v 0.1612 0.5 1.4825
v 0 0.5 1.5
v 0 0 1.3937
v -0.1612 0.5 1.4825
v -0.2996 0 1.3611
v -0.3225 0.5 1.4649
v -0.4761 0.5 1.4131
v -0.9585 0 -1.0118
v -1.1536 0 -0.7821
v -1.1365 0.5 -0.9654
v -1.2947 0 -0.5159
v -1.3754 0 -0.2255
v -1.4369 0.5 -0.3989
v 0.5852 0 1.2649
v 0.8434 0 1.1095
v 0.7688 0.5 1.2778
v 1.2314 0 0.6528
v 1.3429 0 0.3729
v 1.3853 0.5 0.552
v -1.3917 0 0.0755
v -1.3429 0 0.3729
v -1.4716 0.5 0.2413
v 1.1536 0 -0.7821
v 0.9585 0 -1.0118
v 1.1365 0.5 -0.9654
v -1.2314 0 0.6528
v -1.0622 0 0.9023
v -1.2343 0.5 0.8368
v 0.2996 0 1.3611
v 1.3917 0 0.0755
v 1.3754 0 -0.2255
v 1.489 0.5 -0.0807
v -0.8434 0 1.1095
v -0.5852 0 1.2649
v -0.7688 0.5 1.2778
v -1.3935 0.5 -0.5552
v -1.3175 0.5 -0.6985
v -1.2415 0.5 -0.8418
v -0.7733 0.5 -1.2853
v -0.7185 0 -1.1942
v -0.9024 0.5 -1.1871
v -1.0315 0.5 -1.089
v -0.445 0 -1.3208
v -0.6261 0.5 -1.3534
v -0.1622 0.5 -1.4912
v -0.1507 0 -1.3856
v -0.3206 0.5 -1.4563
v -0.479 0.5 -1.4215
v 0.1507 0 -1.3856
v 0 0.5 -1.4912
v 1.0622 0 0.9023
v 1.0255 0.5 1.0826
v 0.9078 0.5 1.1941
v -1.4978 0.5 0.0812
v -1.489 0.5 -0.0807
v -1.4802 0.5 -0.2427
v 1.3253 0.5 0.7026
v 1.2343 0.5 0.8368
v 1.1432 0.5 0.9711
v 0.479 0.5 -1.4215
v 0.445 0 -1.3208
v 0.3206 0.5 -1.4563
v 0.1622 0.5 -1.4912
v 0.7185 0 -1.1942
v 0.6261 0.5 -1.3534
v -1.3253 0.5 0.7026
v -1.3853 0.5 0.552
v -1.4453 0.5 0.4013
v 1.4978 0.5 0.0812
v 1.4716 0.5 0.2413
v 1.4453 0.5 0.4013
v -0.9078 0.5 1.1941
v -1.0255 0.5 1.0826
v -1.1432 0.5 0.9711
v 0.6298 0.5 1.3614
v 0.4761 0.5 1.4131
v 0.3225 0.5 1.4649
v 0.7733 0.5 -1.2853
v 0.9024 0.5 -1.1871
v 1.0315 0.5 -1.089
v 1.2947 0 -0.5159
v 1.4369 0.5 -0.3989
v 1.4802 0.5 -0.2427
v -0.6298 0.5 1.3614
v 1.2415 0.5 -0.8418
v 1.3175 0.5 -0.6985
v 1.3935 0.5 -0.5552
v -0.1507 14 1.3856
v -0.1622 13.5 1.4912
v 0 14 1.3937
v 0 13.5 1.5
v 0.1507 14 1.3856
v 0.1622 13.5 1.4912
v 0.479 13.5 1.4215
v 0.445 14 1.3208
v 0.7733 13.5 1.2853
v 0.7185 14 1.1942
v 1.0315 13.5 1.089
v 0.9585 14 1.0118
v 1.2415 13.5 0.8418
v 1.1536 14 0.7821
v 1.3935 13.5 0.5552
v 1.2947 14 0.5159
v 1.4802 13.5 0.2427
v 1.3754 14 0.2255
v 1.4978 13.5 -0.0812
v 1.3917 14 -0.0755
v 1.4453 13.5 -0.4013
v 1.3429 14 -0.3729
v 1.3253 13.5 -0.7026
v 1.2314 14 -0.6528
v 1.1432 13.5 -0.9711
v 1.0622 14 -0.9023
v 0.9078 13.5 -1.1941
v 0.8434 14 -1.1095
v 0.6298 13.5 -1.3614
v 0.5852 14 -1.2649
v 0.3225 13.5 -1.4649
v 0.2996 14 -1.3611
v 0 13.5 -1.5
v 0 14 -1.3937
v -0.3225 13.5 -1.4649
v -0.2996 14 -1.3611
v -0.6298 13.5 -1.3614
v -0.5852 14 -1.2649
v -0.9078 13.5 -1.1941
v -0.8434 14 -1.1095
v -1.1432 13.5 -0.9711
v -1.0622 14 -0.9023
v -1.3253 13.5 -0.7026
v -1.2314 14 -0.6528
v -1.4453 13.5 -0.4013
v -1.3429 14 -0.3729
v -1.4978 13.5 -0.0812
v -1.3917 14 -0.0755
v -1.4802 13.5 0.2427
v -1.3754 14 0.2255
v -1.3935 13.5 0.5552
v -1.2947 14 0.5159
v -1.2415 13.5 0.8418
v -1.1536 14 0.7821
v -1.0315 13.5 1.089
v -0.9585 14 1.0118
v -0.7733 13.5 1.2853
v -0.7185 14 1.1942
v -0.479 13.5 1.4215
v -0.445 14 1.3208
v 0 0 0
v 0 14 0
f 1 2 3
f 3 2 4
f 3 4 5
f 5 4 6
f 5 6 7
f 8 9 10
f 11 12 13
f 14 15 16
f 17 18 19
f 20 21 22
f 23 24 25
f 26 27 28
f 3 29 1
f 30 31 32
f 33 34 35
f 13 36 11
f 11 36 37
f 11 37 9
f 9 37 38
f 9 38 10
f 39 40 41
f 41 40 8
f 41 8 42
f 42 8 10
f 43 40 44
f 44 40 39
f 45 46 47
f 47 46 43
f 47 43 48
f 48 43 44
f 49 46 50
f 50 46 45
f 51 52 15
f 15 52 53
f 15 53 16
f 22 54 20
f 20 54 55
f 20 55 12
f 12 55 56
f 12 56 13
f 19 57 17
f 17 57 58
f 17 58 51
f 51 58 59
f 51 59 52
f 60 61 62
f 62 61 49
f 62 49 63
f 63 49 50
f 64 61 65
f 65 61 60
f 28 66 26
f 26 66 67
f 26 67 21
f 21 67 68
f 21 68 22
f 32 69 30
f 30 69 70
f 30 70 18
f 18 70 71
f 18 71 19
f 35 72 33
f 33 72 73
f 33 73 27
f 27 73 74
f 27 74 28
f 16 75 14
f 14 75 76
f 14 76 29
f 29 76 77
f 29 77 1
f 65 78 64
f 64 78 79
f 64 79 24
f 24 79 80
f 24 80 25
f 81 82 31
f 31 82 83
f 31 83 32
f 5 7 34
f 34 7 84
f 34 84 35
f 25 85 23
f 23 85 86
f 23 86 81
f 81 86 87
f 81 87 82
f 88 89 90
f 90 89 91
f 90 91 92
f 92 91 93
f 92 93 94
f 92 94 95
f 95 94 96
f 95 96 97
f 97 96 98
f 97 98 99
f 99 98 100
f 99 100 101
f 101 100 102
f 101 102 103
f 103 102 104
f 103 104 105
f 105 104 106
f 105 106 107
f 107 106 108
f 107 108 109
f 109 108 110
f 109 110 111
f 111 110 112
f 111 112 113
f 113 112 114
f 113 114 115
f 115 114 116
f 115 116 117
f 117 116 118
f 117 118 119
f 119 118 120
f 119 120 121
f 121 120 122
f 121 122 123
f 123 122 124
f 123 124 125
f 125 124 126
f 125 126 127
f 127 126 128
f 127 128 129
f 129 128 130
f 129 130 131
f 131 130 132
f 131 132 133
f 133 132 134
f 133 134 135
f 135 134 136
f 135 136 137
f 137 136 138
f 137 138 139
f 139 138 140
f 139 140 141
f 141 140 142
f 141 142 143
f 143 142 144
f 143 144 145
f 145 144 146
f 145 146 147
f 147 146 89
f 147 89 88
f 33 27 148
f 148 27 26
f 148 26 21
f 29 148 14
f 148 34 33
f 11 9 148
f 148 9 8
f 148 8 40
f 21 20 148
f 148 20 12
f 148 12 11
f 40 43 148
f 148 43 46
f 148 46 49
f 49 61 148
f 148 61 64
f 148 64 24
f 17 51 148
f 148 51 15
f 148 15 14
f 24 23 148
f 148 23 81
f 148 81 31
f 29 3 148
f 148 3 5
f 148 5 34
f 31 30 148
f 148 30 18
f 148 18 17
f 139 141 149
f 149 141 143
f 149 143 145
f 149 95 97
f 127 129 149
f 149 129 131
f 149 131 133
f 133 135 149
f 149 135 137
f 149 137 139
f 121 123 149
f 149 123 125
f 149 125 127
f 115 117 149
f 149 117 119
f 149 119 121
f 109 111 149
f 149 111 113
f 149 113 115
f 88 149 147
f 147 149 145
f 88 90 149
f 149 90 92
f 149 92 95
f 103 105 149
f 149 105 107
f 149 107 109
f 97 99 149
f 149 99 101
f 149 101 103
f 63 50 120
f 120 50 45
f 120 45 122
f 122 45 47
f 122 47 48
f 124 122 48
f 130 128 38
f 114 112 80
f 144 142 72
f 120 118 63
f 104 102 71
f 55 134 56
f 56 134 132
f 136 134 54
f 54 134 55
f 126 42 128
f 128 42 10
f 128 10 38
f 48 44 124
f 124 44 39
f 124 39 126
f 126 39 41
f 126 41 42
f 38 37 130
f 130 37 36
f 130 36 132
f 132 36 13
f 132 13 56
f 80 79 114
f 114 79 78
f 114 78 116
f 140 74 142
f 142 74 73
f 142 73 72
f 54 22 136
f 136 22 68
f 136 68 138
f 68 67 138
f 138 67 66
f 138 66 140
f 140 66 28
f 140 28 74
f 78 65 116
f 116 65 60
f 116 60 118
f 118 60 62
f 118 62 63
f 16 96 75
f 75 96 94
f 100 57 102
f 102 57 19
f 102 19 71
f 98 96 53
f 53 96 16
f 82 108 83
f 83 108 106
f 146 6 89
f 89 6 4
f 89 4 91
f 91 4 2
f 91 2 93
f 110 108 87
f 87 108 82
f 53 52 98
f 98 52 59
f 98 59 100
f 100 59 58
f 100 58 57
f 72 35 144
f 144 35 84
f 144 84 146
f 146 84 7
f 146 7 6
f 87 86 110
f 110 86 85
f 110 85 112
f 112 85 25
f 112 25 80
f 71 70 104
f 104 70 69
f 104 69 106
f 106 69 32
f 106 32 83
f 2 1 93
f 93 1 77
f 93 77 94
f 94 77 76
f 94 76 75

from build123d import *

# Parameters (mm, degrees)
SKETCH1_R           = 1.5
BOSS_EXTRUDE1_DEPTH = 14
CHAMFER1_SIZE       = 0.5
CHAMFER1_SIZE2      = 0.106278281
CHAMFER2_SIZE       = 0.5
CHAMFER2_SIZE2      = 0.106278281


with BuildPart() as part:
    # Sketch1 → Boss-Extrude1 (new body)
    with BuildSketch(Plane(origin=(0, 0, 0), x_dir=(1, 0, 0), z_dir=(0, 1, 0))):
        Circle(SKETCH1_R)
    extrude(amount=BOSS_EXTRUDE1_DEPTH)

    # Chamfer1
    chamfer1_edges = [part.edges().sort_by_distance(p)[0] for p in [
        (-1.5, 14, 0),
    ]]
    chamfer1_side = [part.faces().sort_by_distance(p)[0] for p in [
        (-1.5, 7, 0),
    ]]
    chamfer(chamfer1_edges, length=CHAMFER1_SIZE, length2=CHAMFER1_SIZE2, reference=chamfer1_side[0])

    # Chamfer2
    chamfer2_edges = [part.edges().sort_by_distance(p)[0] for p in [
        (-1.5, 0, 0),
    ]]
    chamfer2_side = [part.faces().sort_by_distance(p)[0] for p in [
        (-1.5, 6.75, 0),
    ]]
    chamfer(chamfer2_edges, length=CHAMFER2_SIZE, length2=CHAMFER2_SIZE2, reference=chamfer2_side[0])


solid = part.part
